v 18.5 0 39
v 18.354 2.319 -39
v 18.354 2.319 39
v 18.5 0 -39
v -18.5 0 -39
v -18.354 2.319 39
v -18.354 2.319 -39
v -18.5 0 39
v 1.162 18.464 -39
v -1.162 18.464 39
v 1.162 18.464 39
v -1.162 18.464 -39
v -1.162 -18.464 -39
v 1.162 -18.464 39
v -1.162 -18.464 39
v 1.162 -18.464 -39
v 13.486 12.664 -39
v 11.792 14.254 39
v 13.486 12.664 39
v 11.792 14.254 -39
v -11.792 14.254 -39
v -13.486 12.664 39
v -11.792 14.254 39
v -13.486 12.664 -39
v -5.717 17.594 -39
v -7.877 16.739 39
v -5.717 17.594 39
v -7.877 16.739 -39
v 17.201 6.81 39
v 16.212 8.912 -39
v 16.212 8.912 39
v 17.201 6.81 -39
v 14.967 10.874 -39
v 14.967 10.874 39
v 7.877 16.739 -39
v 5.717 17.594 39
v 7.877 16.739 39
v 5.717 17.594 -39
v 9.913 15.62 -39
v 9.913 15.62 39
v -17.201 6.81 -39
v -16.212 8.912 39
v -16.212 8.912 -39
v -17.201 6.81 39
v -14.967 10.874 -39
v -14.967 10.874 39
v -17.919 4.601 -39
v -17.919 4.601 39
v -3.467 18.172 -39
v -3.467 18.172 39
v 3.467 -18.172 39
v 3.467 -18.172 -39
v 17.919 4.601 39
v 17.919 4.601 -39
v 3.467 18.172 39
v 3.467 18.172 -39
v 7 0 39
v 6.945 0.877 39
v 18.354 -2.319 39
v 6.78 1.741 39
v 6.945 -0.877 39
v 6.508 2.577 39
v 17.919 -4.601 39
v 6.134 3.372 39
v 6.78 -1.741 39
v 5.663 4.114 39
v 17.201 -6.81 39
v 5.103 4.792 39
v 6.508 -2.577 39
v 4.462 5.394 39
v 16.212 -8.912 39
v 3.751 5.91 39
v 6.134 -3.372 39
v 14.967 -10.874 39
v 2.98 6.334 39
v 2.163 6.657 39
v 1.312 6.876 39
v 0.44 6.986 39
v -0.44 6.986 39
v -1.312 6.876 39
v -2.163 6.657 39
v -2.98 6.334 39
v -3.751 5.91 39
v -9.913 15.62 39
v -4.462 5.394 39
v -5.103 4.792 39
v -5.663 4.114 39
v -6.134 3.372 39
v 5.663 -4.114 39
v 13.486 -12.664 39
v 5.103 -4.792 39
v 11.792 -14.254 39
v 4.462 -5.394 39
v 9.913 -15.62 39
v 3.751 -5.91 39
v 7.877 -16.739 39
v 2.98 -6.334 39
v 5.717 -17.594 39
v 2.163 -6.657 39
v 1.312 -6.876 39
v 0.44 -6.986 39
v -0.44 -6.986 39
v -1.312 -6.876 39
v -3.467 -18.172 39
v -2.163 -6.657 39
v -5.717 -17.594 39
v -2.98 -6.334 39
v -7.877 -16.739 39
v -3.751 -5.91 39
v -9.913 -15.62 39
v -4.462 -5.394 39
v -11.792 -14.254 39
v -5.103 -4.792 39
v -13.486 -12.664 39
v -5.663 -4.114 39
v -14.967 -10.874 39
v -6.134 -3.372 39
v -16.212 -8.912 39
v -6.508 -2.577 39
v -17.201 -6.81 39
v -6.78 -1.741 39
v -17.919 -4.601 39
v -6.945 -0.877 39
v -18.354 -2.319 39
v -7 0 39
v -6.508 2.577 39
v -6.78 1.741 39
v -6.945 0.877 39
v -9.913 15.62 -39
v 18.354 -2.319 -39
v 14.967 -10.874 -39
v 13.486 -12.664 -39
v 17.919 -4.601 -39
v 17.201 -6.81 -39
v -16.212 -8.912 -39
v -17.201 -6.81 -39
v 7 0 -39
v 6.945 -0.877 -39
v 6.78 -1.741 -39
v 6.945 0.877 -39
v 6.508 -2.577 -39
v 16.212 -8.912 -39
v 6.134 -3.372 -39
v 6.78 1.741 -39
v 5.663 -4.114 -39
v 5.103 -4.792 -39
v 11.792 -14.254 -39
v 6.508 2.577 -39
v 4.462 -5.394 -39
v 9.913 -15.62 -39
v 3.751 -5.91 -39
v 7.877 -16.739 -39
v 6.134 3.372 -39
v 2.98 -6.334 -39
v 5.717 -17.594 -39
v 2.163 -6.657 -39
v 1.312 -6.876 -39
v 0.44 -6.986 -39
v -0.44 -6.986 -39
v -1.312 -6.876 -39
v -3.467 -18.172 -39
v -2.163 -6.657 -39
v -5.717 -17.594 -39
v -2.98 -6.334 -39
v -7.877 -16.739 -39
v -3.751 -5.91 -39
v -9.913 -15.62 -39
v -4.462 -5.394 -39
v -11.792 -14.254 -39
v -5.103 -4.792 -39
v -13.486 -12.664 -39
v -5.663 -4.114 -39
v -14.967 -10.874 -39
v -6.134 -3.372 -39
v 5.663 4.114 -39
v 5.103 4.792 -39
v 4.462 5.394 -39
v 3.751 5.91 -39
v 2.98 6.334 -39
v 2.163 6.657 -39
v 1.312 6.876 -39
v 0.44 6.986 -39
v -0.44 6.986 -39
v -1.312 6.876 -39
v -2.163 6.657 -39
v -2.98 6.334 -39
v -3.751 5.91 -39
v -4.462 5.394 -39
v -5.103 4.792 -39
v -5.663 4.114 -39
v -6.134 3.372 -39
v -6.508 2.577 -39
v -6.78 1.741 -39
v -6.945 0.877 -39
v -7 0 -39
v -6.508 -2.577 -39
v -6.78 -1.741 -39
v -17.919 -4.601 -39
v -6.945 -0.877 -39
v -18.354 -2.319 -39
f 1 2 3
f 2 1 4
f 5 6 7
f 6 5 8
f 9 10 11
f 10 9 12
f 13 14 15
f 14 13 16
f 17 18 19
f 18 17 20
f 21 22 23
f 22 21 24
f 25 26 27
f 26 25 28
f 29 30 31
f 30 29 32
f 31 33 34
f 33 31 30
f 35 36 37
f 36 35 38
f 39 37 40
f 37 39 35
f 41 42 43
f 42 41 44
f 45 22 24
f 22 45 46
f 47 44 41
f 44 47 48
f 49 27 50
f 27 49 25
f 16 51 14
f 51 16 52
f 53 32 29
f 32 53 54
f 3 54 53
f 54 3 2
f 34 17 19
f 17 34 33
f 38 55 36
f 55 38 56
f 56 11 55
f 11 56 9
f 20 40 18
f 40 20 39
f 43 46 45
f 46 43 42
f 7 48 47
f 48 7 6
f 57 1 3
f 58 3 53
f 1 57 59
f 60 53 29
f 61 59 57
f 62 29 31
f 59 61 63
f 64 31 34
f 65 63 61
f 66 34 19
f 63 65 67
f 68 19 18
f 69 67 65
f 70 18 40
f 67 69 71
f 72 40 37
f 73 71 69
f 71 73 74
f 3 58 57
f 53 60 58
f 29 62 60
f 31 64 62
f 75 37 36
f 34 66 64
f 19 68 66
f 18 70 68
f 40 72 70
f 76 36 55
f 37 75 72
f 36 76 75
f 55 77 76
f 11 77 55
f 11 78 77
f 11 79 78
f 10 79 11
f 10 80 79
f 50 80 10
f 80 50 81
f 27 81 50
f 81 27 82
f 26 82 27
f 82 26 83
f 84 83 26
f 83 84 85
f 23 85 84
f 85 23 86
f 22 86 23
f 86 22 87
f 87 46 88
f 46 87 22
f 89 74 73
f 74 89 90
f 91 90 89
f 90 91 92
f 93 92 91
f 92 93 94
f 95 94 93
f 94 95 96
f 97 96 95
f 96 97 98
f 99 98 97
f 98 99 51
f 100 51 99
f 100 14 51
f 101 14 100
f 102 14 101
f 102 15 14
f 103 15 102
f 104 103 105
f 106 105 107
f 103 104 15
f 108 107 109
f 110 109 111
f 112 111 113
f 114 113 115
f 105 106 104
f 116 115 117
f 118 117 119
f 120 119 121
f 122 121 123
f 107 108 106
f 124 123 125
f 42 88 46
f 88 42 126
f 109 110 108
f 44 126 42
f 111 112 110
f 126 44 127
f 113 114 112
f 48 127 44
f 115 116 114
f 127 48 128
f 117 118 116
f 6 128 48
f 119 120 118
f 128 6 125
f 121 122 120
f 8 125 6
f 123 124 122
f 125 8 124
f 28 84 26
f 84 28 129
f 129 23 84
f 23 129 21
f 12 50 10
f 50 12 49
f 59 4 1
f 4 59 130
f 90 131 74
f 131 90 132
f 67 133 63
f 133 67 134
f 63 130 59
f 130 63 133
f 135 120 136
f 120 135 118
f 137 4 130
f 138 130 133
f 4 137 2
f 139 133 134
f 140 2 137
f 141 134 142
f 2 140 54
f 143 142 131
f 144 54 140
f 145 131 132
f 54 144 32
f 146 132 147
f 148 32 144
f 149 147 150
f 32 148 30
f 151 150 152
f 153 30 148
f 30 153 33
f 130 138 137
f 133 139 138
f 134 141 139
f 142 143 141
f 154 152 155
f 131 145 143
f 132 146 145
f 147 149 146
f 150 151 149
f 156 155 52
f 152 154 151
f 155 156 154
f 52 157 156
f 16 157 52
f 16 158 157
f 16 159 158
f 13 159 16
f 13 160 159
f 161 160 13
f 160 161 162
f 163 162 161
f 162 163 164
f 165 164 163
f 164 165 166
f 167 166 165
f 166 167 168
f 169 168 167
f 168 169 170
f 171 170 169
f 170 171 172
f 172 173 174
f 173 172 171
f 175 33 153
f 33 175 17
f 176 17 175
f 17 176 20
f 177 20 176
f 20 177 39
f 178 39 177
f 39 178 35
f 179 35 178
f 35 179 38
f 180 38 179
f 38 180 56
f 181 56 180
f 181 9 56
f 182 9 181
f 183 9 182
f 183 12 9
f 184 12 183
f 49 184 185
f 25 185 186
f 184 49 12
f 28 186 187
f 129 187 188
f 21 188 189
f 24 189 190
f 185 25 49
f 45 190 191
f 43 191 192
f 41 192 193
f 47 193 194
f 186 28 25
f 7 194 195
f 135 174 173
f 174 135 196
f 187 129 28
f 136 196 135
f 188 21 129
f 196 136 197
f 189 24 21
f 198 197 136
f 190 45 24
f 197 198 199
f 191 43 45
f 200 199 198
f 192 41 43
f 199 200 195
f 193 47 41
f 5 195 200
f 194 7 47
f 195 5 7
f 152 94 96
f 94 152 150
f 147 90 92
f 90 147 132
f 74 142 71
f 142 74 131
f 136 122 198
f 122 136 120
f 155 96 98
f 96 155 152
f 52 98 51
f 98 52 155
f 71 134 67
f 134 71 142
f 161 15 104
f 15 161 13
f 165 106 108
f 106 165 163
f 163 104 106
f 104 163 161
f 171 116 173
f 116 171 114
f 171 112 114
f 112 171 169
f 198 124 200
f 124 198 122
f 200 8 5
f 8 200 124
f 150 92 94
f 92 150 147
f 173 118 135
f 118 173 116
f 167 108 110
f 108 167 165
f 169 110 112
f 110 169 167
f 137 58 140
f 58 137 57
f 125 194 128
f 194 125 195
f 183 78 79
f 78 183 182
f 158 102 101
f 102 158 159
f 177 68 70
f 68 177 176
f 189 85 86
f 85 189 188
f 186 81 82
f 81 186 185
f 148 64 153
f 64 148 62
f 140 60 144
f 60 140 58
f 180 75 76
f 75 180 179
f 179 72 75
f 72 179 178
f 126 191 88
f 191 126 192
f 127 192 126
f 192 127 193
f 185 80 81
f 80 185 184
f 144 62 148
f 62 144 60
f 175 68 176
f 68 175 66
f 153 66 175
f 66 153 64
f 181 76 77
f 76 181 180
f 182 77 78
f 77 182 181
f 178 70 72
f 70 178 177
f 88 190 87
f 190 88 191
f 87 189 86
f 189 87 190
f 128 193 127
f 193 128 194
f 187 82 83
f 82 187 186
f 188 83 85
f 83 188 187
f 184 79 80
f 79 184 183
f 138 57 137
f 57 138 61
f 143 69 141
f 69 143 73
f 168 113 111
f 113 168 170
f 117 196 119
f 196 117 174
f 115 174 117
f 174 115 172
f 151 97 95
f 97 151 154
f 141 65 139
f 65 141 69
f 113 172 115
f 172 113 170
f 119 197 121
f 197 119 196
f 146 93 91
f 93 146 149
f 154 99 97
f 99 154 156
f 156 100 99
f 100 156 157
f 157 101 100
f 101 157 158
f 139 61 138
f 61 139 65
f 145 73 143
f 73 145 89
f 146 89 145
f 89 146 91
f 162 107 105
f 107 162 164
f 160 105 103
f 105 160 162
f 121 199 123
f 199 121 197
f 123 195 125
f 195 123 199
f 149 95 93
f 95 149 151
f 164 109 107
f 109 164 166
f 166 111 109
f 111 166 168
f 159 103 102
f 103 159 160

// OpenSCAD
$fn = 50;


difference() {
	union() {
		translate(v = [0, 0, -39.0000000000]) {
			cylinder(h = 78, r = 18.5000000000);
		}
	}
	union() {
		translate(v = [0, 0, -100.0000000000]) {
			cylinder(h = 200, r = 7);
		}
	}
}
